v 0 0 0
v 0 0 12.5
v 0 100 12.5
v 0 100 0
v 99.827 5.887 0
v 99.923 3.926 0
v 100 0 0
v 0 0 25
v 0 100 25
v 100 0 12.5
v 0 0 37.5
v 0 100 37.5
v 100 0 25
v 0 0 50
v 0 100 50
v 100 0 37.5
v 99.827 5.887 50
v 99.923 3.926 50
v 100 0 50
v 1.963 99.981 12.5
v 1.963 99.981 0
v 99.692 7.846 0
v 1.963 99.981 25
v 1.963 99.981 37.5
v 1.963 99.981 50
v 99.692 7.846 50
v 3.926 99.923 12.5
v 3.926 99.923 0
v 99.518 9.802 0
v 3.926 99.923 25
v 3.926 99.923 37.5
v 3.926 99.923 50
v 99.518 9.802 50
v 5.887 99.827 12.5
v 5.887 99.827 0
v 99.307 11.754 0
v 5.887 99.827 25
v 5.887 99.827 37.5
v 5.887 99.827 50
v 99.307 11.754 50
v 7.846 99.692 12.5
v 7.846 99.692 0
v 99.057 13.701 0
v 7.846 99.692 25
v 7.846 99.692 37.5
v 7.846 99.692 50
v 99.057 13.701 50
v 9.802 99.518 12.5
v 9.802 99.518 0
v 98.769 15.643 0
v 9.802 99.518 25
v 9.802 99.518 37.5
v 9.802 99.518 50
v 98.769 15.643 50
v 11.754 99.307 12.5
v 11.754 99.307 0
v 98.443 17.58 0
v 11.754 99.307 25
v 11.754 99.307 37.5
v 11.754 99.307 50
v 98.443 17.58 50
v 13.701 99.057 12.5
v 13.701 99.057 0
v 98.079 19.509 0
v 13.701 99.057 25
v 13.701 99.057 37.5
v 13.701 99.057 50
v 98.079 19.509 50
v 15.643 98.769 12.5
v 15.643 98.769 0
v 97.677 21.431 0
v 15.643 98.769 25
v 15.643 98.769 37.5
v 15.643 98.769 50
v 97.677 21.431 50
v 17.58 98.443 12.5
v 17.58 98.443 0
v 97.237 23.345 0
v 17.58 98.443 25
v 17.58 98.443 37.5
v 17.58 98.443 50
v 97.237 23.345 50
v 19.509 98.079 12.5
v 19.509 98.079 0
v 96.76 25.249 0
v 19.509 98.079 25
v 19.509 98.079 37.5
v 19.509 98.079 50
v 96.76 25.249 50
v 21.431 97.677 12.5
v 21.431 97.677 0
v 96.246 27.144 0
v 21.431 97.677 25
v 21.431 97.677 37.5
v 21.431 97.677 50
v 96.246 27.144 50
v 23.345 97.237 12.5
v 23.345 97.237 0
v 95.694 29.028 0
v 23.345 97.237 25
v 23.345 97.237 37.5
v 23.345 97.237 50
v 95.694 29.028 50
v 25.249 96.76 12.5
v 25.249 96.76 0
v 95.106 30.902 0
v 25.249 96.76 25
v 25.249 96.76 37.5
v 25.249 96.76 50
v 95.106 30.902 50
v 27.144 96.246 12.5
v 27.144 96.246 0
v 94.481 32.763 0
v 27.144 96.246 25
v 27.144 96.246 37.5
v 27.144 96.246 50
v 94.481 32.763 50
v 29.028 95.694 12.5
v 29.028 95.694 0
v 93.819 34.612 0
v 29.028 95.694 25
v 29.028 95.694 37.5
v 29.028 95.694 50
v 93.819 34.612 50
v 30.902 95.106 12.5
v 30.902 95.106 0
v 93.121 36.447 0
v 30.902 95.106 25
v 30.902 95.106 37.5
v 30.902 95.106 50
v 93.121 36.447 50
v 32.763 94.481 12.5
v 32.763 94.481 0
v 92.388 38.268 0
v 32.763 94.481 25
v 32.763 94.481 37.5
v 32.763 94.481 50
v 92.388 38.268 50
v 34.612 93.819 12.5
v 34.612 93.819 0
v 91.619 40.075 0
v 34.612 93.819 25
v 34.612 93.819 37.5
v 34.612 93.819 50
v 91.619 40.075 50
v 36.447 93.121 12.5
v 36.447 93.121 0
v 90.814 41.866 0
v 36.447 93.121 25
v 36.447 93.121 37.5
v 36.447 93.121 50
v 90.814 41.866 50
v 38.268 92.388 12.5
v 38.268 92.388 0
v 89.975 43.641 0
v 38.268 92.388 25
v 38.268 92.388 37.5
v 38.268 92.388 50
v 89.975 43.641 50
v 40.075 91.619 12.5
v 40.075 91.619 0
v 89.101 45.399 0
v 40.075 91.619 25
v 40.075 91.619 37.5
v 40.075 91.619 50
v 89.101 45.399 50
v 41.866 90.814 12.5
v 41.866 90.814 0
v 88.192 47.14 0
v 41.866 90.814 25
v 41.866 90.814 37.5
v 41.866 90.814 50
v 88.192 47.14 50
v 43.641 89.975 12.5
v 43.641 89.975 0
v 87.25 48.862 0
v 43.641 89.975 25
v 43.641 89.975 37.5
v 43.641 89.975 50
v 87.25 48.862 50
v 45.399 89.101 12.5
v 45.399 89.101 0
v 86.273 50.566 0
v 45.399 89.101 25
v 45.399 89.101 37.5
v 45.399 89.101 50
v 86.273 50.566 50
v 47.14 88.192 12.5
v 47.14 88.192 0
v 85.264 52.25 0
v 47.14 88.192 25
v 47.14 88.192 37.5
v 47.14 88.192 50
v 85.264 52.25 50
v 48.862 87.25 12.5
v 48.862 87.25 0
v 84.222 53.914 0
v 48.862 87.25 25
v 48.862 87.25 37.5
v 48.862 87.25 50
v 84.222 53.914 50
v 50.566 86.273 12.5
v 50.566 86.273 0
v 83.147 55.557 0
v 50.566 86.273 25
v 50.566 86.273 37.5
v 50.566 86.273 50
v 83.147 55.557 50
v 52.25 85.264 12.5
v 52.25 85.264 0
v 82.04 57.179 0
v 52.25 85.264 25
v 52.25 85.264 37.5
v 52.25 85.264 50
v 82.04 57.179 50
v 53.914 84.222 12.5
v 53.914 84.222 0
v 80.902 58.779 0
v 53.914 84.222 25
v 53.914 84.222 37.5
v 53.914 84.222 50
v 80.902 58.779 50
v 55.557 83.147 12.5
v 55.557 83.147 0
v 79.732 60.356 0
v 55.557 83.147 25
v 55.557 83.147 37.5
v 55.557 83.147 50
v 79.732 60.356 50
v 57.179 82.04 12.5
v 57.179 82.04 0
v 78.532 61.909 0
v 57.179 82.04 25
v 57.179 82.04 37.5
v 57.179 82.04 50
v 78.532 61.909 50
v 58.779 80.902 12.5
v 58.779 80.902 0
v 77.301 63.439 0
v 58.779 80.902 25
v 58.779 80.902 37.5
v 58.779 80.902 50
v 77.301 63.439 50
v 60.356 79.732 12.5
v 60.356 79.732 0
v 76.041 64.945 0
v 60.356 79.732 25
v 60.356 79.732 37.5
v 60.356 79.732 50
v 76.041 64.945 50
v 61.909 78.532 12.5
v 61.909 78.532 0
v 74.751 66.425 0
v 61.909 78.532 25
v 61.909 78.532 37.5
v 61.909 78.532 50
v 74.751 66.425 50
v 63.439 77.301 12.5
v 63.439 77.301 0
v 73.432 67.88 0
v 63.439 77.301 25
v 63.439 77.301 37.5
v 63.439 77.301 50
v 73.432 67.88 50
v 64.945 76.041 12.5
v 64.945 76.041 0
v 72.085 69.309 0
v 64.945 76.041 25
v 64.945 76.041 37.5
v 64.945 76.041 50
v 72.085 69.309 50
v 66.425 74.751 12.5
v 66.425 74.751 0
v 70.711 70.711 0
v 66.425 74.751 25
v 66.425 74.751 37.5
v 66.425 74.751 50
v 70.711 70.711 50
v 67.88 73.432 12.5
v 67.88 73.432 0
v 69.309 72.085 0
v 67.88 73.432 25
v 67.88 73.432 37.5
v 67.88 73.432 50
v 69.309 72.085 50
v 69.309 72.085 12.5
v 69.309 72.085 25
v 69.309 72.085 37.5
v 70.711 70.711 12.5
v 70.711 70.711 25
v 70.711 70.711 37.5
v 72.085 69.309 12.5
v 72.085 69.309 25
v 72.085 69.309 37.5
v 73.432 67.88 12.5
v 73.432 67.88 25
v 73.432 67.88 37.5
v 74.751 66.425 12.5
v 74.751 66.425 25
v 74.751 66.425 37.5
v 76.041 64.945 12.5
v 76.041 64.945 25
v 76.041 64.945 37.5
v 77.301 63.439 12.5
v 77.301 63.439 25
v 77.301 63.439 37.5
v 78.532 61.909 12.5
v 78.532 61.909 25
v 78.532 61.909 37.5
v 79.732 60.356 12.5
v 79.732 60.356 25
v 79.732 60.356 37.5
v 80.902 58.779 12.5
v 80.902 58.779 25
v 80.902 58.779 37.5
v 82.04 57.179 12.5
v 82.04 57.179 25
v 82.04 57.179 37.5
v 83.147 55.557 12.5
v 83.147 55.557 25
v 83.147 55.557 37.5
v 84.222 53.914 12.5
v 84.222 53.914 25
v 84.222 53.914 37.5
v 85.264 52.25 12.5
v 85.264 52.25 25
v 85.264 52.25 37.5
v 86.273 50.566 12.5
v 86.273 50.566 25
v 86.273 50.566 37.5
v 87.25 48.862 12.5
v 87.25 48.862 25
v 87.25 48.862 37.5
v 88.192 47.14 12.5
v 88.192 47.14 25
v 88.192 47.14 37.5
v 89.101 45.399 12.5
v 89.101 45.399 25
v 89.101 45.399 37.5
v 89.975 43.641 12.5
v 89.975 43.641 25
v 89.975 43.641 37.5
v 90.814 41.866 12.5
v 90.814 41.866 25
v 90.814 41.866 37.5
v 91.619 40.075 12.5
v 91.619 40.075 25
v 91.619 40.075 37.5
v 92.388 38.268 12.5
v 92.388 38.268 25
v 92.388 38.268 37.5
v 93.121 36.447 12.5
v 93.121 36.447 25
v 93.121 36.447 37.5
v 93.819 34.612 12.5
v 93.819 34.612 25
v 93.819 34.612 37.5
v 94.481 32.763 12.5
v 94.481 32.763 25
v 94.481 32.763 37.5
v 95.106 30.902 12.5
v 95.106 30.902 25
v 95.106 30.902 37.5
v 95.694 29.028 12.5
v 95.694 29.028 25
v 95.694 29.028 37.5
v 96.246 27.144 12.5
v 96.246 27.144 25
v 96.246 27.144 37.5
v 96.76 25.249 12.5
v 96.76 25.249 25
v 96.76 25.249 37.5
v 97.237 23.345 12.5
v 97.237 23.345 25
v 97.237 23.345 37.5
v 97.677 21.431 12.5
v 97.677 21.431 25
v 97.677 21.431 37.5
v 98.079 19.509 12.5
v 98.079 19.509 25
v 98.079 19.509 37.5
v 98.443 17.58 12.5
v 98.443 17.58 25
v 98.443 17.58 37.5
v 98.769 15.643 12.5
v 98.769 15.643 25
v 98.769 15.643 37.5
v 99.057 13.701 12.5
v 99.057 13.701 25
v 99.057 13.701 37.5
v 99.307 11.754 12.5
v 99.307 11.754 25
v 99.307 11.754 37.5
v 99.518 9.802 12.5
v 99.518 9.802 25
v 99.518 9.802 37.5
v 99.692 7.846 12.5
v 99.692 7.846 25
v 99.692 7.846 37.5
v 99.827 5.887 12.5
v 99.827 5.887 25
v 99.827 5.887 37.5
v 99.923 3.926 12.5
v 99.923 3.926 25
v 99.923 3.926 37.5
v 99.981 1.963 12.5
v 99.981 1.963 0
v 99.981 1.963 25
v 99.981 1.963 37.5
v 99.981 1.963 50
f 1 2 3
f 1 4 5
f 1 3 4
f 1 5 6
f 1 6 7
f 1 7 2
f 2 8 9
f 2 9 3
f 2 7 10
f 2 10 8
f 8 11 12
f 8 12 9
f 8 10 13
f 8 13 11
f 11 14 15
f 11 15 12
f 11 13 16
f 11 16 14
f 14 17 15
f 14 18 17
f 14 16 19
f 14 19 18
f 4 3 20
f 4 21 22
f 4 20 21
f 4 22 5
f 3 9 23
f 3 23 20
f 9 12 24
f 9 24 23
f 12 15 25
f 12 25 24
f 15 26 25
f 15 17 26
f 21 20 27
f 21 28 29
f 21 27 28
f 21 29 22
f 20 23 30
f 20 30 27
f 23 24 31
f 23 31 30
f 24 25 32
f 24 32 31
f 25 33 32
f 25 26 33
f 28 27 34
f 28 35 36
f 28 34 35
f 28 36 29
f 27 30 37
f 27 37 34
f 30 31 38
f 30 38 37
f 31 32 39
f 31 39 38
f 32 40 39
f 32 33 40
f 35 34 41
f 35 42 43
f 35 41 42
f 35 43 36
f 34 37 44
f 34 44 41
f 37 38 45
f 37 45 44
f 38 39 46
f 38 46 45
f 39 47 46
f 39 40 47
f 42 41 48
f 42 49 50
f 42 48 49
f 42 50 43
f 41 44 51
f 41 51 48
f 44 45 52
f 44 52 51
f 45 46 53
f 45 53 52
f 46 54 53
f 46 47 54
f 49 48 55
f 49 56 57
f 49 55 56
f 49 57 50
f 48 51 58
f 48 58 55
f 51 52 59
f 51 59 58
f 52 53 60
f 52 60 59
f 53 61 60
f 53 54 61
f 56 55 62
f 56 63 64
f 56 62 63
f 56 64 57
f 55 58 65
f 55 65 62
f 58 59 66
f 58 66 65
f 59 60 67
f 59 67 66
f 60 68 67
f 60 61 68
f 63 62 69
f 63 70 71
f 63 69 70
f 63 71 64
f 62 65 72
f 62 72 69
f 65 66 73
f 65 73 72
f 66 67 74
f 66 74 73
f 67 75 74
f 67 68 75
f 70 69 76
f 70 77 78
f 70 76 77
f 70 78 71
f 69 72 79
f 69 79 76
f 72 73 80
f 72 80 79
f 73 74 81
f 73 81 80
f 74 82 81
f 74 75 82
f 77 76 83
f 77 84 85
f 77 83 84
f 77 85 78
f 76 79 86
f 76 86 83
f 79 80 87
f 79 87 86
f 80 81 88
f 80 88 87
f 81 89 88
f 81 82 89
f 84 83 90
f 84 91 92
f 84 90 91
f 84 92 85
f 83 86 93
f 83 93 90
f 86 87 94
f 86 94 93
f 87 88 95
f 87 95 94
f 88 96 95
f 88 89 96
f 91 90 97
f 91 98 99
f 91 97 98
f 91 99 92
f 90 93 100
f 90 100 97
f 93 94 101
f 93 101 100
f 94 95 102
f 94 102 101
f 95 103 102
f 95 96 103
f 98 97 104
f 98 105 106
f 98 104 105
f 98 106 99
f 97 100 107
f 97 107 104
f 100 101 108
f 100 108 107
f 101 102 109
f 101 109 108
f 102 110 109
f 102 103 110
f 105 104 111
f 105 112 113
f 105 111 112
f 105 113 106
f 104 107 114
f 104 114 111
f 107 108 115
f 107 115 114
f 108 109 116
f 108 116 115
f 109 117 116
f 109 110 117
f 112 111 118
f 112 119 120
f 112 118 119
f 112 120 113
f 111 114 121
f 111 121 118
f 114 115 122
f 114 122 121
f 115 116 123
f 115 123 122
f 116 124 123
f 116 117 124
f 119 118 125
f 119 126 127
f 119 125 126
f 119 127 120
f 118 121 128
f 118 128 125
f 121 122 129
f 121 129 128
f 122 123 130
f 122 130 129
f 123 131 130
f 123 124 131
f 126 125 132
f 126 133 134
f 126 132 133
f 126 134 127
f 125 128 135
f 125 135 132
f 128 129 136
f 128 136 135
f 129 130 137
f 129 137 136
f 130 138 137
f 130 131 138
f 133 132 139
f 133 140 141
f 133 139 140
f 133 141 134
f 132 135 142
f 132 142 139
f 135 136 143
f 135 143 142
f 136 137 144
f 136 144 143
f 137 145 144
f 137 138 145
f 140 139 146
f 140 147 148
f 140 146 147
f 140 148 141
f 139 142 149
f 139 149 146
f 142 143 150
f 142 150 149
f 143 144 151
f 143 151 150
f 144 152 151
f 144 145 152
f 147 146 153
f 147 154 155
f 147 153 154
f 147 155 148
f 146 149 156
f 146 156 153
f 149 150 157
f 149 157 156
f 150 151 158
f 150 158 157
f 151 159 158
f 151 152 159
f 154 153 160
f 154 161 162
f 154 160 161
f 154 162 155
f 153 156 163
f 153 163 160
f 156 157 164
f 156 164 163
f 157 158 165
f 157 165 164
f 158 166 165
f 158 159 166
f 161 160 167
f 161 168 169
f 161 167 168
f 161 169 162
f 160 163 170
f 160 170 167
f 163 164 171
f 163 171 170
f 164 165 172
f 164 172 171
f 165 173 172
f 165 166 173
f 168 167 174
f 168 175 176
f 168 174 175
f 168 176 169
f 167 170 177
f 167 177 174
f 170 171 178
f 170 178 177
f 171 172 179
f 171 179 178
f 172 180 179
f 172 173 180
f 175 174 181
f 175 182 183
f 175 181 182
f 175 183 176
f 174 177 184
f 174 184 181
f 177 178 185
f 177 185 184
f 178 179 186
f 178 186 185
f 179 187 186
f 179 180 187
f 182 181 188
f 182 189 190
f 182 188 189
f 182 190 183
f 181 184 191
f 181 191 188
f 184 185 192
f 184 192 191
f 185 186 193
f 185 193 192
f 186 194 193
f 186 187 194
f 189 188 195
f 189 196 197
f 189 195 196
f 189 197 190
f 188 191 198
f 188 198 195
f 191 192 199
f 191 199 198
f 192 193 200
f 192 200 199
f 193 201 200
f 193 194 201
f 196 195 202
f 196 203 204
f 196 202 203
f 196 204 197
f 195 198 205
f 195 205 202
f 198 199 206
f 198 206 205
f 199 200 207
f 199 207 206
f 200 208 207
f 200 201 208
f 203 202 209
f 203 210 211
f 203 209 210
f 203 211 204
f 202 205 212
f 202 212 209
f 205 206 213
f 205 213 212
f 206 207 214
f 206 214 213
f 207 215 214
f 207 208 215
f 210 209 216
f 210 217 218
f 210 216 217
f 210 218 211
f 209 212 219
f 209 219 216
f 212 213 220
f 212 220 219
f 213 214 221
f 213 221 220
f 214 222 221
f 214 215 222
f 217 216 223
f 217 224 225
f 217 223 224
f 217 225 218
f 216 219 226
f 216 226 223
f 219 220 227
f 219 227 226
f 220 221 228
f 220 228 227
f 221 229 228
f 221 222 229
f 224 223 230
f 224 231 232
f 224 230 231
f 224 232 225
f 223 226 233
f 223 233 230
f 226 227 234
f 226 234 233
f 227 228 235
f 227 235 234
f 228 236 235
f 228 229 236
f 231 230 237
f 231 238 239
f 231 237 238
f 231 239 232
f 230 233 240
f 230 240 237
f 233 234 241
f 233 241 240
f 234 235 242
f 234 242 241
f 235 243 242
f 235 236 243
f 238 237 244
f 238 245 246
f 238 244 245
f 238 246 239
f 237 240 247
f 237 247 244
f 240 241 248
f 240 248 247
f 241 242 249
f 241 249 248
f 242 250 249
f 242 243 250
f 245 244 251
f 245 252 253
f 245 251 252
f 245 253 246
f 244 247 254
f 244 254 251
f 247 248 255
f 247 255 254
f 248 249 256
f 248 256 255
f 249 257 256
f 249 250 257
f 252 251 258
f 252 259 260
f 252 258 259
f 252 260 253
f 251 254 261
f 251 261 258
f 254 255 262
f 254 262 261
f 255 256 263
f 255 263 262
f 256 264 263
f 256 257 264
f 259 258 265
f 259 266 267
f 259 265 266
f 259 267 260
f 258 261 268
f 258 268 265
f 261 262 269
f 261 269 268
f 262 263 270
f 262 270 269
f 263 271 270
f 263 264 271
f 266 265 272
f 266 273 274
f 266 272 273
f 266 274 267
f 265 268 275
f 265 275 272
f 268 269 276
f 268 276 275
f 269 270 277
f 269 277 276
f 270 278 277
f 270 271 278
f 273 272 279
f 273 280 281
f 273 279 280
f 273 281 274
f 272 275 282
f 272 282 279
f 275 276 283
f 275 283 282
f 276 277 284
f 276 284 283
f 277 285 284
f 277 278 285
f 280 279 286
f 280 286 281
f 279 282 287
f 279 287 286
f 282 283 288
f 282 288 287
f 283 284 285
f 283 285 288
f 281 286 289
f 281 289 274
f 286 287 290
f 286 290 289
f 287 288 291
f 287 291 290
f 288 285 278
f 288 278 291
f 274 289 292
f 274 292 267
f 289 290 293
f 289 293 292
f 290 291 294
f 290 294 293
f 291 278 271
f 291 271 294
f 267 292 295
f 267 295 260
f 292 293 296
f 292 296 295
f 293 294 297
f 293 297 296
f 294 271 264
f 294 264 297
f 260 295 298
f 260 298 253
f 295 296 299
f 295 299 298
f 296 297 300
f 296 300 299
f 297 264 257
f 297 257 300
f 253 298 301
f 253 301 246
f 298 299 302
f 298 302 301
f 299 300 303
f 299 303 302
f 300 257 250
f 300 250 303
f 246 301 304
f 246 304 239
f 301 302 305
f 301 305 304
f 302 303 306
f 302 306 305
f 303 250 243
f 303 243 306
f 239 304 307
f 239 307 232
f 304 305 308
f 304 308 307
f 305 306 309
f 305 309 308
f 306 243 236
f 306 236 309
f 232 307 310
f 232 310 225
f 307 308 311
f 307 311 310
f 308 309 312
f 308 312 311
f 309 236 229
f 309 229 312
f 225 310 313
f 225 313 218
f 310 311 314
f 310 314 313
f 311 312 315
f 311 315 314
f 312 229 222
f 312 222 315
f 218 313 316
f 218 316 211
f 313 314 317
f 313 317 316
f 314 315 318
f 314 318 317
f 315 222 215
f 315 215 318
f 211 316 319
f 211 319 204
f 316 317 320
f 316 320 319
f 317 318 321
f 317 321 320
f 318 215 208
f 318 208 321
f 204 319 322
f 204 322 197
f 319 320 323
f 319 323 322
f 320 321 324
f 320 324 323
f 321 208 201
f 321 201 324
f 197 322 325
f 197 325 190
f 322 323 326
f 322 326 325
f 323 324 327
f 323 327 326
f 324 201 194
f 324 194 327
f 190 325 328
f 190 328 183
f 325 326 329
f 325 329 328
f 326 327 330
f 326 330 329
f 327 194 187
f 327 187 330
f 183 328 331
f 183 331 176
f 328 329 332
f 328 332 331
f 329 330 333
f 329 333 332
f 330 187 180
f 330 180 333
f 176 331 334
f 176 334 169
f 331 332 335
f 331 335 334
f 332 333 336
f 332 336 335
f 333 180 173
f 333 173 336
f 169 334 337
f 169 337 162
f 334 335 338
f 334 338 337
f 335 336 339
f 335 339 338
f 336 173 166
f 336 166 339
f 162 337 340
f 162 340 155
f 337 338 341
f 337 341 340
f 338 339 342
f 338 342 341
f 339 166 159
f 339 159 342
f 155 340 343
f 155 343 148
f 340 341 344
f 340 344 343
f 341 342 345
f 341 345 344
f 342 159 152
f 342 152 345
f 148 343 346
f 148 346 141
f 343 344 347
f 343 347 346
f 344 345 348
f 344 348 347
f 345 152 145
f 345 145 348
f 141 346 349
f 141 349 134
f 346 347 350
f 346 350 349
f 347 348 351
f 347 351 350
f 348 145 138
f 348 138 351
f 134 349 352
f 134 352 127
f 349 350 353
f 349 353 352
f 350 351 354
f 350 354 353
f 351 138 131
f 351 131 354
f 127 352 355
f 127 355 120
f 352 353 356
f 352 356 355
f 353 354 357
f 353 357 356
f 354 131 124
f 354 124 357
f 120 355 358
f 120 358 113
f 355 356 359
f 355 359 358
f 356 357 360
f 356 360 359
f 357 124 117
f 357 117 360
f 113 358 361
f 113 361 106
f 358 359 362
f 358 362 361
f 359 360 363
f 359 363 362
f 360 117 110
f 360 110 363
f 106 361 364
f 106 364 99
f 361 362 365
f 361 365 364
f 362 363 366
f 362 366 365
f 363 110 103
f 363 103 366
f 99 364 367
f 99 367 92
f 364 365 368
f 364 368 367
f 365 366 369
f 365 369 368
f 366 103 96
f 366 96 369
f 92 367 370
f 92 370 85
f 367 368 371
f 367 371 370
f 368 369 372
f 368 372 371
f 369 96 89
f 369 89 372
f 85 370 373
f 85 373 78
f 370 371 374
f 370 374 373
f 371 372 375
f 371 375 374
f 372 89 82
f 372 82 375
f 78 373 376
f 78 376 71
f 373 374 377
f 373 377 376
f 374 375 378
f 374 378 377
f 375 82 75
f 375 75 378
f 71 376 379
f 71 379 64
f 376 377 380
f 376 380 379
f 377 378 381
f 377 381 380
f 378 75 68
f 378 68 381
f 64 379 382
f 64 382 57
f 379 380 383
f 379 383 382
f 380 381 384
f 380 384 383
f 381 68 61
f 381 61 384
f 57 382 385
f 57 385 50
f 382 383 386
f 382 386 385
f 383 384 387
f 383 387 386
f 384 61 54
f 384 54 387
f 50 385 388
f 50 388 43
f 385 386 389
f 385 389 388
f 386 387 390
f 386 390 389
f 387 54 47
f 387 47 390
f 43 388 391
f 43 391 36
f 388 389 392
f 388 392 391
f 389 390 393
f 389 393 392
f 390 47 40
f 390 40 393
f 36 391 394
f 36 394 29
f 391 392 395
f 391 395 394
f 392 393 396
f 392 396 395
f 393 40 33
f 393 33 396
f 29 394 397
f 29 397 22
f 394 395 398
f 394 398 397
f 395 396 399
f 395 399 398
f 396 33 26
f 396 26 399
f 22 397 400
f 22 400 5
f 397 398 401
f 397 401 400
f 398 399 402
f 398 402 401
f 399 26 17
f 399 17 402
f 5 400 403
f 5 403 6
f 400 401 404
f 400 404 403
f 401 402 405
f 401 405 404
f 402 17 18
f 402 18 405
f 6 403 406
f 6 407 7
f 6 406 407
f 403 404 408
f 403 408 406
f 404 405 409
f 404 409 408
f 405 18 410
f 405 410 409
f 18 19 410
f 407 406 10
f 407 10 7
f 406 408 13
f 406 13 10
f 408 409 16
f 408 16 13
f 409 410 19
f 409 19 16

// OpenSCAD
// Start: lazy_union
default_5_default_5();
// End: lazy_union

// Modules.

// 'PartMaterial undef-default - default 5.0'
module default_5_default_5() {
  // 'None : _combine_solids_and_holes'
  union() {
    // 'example3 : _combine_solids_and_holes'
    union() {
      // 'example3'
      linear_extrude(height=50.0, twist=0.0, slices=4, scale=[1.0, 1.0], $fn=80) {
        polygon(points=[[0.0, 0.0], [100.0, 0.0], [99.98072404820648, 1.96336924606283], [99.92290362407229, 3.925981575906861], [99.8265610184716, 5.887080365118903], [99.6917333733128, 7.845909572784494], [99.5184726672197, 9.80171403295606], [99.30684569549263, 11.753739745783765], [99.05693404435773, 13.701234168196802], [98.76883405951378, 15.643446504023087], [98.44265680898916, 17.57962799343545], [98.07852804032305, 19.509032201612825], [97.67658813208723, 21.430915306505078], [97.23699203976766, 23.34453638559054], [96.75990923602598, 25.249157701515795], [96.24552364536473, 27.144044986507428], [95.69403357322088, 29.028467725446234], [95.10565162951535, 30.901699437494738], [94.48060464668781, 32.76301795616935], [93.81913359224842, 34.611705707749294], [93.12149347588036, 36.447049987914966], [92.38795325112868, 38.268343236508976], [91.6187957117136, 40.0748833103141], [90.81431738250812, 41.865973753742814], [89.97482840522215, 43.640924067334204], [89.10065241883679, 45.399049973954675], [88.1921264348355, 47.13967368259976], [87.24960070727971, 48.86212414969549], [86.27343859777919, 50.56573733779845], [85.26401643540923, 52.24985647159488], [84.22172337162866, 53.913832291100015], [83.14696123025452, 55.557023301960214], [82.04014435255135, 57.178796022761226], [80.90169943749474, 58.778525229247315], [79.73206537727071, 60.35559419535714], [78.53169308807449, 61.909394930983396], [77.3010453362737, 63.439328416364546], [76.0405965600031, 64.94480483301837], [74.75083268625968, 66.42524379112817], [73.43225094356856, 67.88007455329416], [72.08535967029188, 69.30873625456358], [70.71067811865476, 70.71067811865476], [69.3087362545636, 72.08535967029187], [67.88007455329418, 73.43225094356856], [66.42524379112817, 74.75083268625967], [64.94480483301835, 76.04059656000311], [63.439328416364546, 77.30104533627369], [61.90939493098341, 78.53169308807449], [60.35559419535714, 79.73206537727071], [58.778525229247315, 80.90169943749474], [57.178796022761226, 82.04014435255137], [55.55702330196023, 83.14696123025452], [53.913832291100036, 84.22172337162864], [52.24985647159489, 85.26401643540922], [50.56573733779848, 86.27343859777918], [48.8621241496955, 87.24960070727971], [47.13967368259978, 88.1921264348355], [45.39904997395468, 89.10065241883677], [43.640924067334204, 89.97482840522215], [41.865973753742814, 90.81431738250812], [40.07488331031409, 91.6187957117136], [38.26834323650898, 92.38795325112868], [36.44704998791498, 93.12149347588034], [34.6117057077493, 93.81913359224842], [32.763017956169364, 94.4806046466878], [30.901699437494745, 95.10565162951535], [29.028467725446234, 95.69403357322089], [27.14404498650743, 96.24552364536473], [25.24915770151579, 96.75990923602598], [23.344536385590548, 97.23699203976766], [21.430915306505067, 97.67658813208725], [19.509032201612833, 98.07852804032305], [17.57962799343547, 98.44265680898916], [15.643446504023093, 98.76883405951378], [13.701234168196821, 99.05693404435773], [11.75373974578377, 99.30684569549263], [9.801714032956077, 99.51847266721968], [7.8459095727845, 99.6917333733128], [5.887080365118899, 99.8265610184716], [3.9259815759068664, 99.92290362407229], [1.9633692460628251, 99.98072404820648], [6.123233995736766e-15, 100.0]]);
      }
    }
  }
} // end module default_5_default_5
